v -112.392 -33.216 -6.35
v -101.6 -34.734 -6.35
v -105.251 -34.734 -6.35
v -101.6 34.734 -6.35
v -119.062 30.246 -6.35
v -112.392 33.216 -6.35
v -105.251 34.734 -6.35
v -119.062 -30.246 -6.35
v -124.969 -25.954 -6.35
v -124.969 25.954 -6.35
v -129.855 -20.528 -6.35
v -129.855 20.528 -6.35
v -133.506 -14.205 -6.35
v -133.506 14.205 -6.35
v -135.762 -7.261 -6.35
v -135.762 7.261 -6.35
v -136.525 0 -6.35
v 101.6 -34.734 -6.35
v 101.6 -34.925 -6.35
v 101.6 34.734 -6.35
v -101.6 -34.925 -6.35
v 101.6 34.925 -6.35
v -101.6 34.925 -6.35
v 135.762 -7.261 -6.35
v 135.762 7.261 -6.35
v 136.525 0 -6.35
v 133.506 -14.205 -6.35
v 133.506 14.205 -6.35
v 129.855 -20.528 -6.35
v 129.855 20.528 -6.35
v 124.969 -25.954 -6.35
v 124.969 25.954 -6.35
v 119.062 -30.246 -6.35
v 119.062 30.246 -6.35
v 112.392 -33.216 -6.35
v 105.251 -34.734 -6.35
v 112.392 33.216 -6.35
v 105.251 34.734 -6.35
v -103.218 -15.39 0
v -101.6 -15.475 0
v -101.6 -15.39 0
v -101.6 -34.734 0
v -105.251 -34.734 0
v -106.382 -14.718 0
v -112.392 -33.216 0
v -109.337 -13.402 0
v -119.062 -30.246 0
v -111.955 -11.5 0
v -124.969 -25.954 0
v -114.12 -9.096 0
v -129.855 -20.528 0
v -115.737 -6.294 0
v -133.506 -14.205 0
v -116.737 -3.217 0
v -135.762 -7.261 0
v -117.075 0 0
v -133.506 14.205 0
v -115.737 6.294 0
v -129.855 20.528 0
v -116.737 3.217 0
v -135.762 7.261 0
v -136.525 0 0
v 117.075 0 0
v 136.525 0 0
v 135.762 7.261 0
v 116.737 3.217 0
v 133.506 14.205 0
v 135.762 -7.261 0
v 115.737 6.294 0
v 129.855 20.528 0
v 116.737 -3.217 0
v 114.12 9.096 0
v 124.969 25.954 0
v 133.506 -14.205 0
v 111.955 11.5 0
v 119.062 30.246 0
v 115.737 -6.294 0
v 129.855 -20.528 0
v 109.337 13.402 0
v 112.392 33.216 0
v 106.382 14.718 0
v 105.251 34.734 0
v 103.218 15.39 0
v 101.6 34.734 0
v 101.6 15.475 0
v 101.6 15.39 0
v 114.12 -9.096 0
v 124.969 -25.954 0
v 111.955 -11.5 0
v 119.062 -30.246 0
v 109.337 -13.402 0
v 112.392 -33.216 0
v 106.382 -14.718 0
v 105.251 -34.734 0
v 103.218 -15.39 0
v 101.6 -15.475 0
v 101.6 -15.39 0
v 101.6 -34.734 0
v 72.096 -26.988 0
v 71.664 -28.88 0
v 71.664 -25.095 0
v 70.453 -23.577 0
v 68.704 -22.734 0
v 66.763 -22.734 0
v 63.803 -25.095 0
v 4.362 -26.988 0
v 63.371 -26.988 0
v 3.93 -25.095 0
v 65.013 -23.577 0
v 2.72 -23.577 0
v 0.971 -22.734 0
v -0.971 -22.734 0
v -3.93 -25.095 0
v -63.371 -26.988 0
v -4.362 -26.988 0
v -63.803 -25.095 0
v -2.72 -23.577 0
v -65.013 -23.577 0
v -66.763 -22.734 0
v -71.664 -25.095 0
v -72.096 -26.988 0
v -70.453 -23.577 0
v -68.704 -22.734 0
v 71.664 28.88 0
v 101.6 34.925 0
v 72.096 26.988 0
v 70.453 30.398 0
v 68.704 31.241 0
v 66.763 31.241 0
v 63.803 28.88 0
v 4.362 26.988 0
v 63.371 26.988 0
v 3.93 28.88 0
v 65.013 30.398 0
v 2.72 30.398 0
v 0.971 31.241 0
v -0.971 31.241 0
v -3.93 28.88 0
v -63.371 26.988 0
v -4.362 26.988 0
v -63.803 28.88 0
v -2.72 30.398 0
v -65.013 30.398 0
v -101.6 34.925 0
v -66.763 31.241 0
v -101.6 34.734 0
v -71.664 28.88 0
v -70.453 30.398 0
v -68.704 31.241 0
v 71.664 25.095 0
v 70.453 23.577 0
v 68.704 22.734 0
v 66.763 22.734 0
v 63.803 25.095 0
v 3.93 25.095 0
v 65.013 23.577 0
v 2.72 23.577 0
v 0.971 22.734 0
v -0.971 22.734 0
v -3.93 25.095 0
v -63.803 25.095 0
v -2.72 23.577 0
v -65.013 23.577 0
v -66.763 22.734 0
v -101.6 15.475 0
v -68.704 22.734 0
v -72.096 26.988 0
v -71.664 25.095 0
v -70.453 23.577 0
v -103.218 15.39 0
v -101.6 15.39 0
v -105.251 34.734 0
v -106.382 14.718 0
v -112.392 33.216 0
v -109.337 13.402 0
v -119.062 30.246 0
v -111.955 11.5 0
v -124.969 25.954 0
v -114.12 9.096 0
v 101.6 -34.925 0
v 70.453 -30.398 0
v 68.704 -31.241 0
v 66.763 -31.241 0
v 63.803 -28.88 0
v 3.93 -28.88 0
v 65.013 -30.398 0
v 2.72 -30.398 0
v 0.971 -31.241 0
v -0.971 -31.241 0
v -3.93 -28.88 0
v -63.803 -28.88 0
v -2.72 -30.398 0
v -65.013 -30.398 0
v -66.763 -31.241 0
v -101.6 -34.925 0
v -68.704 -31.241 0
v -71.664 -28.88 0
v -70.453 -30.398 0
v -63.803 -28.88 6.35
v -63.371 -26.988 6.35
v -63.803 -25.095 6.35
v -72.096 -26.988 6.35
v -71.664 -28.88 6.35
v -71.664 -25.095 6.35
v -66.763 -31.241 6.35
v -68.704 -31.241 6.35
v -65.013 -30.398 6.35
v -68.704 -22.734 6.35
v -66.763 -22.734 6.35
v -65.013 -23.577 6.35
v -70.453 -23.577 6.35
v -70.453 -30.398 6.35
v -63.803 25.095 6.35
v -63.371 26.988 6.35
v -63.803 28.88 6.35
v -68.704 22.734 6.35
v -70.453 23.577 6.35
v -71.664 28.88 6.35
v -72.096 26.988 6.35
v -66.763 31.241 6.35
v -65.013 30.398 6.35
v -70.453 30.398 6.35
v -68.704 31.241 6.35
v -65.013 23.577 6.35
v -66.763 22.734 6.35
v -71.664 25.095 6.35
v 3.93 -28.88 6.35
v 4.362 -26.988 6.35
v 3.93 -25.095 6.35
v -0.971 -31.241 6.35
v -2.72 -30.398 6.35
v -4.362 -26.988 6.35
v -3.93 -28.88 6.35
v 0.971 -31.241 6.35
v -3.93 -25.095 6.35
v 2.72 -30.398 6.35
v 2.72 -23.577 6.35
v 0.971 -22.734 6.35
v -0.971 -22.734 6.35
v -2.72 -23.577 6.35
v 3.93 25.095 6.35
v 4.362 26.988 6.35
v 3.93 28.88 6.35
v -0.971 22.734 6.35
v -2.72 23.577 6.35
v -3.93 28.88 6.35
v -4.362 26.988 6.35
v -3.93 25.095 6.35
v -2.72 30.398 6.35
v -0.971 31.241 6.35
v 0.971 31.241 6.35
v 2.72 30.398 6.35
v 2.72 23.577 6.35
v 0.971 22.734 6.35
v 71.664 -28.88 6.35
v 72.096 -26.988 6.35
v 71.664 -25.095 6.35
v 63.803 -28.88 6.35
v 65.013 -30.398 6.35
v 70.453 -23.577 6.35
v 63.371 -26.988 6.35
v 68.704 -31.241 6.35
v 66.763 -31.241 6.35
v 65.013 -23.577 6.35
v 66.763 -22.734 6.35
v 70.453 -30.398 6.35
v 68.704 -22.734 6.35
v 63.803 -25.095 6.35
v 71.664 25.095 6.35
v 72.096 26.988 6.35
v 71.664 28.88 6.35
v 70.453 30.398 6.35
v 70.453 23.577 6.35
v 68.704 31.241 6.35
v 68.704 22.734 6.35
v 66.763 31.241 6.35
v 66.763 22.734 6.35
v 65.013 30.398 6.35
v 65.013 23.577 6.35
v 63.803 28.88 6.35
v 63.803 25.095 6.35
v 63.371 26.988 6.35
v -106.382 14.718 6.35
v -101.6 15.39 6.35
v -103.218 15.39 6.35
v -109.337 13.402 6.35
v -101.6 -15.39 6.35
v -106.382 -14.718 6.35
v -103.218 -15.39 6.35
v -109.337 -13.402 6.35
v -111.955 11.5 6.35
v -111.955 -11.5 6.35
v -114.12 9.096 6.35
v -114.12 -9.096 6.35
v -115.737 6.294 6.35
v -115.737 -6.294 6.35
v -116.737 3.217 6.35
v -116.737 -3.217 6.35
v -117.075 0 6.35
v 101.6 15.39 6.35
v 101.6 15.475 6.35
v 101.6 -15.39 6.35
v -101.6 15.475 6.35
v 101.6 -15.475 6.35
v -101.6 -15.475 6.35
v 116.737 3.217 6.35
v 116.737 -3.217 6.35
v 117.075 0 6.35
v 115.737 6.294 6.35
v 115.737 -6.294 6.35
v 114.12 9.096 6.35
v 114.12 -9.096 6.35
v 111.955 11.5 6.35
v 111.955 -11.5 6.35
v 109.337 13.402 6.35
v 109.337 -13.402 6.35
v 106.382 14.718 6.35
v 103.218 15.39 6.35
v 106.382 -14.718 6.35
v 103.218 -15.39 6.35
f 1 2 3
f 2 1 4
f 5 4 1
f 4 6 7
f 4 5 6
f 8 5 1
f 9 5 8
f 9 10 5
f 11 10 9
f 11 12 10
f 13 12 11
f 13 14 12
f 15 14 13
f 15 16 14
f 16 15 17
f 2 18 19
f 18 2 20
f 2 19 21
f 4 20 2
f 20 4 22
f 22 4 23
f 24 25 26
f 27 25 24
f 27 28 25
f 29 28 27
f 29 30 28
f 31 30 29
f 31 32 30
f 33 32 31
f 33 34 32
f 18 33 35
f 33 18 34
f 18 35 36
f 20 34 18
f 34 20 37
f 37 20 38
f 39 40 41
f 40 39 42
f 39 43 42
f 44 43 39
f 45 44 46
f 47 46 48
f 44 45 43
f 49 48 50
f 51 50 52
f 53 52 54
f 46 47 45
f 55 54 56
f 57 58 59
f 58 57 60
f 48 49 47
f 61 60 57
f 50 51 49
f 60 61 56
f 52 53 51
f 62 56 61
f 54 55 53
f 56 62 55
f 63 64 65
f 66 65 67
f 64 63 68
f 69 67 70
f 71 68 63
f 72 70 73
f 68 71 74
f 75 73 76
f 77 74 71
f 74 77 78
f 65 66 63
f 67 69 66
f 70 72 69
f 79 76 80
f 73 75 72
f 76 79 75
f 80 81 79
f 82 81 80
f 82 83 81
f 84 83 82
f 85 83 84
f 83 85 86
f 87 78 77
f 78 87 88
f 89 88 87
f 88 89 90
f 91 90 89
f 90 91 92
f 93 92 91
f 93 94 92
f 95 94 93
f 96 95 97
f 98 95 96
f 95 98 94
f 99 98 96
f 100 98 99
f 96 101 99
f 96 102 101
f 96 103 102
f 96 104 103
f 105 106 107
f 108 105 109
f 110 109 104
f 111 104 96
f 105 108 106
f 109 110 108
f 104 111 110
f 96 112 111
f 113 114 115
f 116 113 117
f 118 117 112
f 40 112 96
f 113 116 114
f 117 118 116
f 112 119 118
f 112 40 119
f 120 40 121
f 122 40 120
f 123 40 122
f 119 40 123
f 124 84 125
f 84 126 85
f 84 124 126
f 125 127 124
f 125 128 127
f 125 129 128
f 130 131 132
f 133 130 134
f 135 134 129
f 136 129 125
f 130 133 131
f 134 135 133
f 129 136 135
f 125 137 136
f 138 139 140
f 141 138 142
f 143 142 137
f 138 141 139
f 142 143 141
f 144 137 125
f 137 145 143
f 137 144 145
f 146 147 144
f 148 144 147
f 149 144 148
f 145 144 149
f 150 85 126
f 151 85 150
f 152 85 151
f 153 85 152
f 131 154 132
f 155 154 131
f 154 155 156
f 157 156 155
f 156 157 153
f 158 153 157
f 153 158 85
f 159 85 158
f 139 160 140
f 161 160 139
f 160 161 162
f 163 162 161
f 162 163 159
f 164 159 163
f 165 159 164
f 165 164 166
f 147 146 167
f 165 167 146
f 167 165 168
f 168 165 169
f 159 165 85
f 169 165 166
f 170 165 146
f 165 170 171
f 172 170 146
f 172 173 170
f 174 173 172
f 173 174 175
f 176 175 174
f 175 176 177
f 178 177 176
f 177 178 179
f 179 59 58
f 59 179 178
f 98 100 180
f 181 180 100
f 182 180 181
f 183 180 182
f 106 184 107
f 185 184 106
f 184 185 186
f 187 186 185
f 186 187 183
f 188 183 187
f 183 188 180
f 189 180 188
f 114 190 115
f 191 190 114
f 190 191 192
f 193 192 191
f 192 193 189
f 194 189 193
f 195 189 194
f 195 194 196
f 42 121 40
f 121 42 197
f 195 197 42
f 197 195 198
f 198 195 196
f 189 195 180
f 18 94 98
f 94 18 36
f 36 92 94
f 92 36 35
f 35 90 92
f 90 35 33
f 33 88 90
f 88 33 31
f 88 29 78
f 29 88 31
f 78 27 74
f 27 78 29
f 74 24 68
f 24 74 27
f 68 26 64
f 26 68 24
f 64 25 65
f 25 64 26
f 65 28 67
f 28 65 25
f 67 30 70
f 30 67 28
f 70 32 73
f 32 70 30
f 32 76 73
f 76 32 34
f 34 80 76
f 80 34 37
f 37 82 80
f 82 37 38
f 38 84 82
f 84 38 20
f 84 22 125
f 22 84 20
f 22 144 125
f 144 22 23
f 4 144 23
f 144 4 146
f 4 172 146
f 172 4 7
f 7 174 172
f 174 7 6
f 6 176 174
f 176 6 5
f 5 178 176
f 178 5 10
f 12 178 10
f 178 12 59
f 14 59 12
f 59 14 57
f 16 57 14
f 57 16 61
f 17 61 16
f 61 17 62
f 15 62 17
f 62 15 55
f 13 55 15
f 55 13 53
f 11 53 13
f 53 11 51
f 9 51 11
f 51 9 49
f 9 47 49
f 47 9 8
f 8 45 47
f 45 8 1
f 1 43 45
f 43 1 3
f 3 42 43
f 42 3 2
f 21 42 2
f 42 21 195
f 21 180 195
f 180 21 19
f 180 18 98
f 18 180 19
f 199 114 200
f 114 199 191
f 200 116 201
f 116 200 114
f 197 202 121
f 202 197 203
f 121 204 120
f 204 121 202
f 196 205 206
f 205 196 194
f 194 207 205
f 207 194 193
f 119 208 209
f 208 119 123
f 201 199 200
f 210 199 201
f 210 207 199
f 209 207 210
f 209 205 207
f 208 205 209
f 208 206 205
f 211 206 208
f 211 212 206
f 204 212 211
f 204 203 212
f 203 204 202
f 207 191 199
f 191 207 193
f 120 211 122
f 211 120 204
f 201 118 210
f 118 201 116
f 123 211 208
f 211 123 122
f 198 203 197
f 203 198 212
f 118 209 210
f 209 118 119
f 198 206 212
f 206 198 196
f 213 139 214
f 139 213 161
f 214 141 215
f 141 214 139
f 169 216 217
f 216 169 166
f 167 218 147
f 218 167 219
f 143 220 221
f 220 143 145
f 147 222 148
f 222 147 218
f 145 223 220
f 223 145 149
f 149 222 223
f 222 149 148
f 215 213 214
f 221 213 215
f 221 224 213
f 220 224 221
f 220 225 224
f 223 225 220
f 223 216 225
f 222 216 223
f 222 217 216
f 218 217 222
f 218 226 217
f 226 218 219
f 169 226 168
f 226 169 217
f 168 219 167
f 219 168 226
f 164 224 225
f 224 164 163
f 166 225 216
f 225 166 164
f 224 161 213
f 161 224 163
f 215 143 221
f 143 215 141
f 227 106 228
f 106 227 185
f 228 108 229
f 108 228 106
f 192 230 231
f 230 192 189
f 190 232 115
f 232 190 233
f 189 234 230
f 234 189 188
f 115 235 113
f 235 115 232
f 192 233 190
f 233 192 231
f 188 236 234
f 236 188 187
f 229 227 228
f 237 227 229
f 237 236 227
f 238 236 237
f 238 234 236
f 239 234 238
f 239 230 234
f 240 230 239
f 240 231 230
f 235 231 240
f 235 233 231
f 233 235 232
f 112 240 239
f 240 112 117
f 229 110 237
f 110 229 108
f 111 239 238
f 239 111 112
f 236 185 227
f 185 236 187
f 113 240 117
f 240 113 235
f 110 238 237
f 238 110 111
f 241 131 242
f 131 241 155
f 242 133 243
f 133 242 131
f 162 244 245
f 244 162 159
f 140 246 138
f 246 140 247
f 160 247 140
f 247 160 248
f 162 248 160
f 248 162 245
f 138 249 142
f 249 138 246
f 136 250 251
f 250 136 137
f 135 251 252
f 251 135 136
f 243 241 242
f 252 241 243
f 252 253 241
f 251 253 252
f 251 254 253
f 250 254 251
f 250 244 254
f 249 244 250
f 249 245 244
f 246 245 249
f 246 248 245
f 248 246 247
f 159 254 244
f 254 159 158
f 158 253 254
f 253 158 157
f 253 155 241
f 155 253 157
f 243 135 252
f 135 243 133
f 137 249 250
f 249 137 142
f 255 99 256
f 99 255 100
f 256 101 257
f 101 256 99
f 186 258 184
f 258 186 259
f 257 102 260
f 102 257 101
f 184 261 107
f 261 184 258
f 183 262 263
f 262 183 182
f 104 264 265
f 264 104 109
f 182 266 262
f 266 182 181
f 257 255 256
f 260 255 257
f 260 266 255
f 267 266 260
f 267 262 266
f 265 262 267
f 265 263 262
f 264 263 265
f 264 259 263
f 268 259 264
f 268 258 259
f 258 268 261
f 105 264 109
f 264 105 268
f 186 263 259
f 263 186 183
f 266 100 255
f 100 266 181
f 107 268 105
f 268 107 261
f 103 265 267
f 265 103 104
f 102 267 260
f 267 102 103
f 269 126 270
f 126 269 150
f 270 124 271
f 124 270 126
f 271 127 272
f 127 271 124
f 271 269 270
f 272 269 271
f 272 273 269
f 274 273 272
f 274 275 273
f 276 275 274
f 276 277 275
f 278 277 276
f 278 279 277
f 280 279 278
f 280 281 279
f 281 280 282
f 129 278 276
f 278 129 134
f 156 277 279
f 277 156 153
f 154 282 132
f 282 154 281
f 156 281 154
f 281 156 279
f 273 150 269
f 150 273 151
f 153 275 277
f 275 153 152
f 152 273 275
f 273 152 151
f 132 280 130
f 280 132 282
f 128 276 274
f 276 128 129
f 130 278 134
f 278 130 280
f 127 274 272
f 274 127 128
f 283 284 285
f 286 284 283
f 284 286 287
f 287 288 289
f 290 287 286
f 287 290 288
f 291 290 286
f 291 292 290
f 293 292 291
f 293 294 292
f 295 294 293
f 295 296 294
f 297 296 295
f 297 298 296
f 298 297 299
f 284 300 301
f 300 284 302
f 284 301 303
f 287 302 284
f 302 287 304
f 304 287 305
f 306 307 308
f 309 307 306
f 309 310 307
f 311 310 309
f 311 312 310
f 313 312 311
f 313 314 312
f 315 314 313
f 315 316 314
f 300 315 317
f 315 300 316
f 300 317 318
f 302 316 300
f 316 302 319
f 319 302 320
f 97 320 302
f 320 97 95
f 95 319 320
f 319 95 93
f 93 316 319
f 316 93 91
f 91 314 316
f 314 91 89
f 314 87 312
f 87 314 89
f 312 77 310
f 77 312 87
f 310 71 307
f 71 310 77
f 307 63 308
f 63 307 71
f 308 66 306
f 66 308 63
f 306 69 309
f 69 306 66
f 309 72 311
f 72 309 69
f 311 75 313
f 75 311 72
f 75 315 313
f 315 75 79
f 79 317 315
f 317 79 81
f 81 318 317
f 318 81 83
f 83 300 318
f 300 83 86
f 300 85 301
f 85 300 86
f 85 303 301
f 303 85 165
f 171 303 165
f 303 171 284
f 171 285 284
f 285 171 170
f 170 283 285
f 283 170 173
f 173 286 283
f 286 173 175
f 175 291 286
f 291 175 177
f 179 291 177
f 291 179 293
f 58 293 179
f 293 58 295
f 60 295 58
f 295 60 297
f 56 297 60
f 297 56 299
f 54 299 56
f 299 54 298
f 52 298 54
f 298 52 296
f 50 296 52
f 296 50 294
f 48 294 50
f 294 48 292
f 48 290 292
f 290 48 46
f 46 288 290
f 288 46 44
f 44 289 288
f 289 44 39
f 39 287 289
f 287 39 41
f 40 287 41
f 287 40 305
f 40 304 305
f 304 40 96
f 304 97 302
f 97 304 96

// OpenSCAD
union() {
	union() {
		union() {
			union() {
				union() {
					union() {
						union() {
							translate(v = [0, 0, -6.3500000000]) {
								linear_extrude(height = 6.3500000000) {
									union() {
										union() {
											square(center = true, size = [203.2000000000, 69.8500000000]);
											translate(v = [-101.6000000000, 0]) {
												circle(d = 69.8500000000);
											}
										}
										translate(v = [101.6000000000, 0]) {
											circle(d = 69.8500000000);
										}
									}
								}
							}
							translate(v = [-67.7333333333, -26.9875000000]) {
								linear_extrude(height = 6.3500000000) {
									circle(d = 8.7250000000);
								}
							}
						}
						translate(v = [-67.7333333333, 26.9875000000]) {
							linear_extrude(height = 6.3500000000) {
								circle(d = 8.7250000000);
							}
						}
					}
					translate(v = [0, -26.9875000000]) {
						linear_extrude(height = 6.3500000000) {
							circle(d = 8.7250000000);
						}
					}
				}
				translate(v = [0, 26.9875000000]) {
					linear_extrude(height = 6.3500000000) {
						circle(d = 8.7250000000);
					}
				}
			}
			translate(v = [67.7333333333, -26.9875000000]) {
				linear_extrude(height = 6.3500000000) {
					circle(d = 8.7250000000);
				}
			}
		}
		translate(v = [67.7333333333, 26.9875000000]) {
			linear_extrude(height = 6.3500000000) {
				circle(d = 8.7250000000);
			}
		}
	}
	linear_extrude(height = 6.3500000000) {
		union() {
			union() {
				square(center = true, size = [203.2000000000, 30.9500000000]);
				translate(v = [-101.6000000000, 0]) {
					circle(d = 30.9500000000);
				}
			}
			translate(v = [101.6000000000, 0]) {
				circle(d = 30.9500000000);
			}
		}
	}
}
